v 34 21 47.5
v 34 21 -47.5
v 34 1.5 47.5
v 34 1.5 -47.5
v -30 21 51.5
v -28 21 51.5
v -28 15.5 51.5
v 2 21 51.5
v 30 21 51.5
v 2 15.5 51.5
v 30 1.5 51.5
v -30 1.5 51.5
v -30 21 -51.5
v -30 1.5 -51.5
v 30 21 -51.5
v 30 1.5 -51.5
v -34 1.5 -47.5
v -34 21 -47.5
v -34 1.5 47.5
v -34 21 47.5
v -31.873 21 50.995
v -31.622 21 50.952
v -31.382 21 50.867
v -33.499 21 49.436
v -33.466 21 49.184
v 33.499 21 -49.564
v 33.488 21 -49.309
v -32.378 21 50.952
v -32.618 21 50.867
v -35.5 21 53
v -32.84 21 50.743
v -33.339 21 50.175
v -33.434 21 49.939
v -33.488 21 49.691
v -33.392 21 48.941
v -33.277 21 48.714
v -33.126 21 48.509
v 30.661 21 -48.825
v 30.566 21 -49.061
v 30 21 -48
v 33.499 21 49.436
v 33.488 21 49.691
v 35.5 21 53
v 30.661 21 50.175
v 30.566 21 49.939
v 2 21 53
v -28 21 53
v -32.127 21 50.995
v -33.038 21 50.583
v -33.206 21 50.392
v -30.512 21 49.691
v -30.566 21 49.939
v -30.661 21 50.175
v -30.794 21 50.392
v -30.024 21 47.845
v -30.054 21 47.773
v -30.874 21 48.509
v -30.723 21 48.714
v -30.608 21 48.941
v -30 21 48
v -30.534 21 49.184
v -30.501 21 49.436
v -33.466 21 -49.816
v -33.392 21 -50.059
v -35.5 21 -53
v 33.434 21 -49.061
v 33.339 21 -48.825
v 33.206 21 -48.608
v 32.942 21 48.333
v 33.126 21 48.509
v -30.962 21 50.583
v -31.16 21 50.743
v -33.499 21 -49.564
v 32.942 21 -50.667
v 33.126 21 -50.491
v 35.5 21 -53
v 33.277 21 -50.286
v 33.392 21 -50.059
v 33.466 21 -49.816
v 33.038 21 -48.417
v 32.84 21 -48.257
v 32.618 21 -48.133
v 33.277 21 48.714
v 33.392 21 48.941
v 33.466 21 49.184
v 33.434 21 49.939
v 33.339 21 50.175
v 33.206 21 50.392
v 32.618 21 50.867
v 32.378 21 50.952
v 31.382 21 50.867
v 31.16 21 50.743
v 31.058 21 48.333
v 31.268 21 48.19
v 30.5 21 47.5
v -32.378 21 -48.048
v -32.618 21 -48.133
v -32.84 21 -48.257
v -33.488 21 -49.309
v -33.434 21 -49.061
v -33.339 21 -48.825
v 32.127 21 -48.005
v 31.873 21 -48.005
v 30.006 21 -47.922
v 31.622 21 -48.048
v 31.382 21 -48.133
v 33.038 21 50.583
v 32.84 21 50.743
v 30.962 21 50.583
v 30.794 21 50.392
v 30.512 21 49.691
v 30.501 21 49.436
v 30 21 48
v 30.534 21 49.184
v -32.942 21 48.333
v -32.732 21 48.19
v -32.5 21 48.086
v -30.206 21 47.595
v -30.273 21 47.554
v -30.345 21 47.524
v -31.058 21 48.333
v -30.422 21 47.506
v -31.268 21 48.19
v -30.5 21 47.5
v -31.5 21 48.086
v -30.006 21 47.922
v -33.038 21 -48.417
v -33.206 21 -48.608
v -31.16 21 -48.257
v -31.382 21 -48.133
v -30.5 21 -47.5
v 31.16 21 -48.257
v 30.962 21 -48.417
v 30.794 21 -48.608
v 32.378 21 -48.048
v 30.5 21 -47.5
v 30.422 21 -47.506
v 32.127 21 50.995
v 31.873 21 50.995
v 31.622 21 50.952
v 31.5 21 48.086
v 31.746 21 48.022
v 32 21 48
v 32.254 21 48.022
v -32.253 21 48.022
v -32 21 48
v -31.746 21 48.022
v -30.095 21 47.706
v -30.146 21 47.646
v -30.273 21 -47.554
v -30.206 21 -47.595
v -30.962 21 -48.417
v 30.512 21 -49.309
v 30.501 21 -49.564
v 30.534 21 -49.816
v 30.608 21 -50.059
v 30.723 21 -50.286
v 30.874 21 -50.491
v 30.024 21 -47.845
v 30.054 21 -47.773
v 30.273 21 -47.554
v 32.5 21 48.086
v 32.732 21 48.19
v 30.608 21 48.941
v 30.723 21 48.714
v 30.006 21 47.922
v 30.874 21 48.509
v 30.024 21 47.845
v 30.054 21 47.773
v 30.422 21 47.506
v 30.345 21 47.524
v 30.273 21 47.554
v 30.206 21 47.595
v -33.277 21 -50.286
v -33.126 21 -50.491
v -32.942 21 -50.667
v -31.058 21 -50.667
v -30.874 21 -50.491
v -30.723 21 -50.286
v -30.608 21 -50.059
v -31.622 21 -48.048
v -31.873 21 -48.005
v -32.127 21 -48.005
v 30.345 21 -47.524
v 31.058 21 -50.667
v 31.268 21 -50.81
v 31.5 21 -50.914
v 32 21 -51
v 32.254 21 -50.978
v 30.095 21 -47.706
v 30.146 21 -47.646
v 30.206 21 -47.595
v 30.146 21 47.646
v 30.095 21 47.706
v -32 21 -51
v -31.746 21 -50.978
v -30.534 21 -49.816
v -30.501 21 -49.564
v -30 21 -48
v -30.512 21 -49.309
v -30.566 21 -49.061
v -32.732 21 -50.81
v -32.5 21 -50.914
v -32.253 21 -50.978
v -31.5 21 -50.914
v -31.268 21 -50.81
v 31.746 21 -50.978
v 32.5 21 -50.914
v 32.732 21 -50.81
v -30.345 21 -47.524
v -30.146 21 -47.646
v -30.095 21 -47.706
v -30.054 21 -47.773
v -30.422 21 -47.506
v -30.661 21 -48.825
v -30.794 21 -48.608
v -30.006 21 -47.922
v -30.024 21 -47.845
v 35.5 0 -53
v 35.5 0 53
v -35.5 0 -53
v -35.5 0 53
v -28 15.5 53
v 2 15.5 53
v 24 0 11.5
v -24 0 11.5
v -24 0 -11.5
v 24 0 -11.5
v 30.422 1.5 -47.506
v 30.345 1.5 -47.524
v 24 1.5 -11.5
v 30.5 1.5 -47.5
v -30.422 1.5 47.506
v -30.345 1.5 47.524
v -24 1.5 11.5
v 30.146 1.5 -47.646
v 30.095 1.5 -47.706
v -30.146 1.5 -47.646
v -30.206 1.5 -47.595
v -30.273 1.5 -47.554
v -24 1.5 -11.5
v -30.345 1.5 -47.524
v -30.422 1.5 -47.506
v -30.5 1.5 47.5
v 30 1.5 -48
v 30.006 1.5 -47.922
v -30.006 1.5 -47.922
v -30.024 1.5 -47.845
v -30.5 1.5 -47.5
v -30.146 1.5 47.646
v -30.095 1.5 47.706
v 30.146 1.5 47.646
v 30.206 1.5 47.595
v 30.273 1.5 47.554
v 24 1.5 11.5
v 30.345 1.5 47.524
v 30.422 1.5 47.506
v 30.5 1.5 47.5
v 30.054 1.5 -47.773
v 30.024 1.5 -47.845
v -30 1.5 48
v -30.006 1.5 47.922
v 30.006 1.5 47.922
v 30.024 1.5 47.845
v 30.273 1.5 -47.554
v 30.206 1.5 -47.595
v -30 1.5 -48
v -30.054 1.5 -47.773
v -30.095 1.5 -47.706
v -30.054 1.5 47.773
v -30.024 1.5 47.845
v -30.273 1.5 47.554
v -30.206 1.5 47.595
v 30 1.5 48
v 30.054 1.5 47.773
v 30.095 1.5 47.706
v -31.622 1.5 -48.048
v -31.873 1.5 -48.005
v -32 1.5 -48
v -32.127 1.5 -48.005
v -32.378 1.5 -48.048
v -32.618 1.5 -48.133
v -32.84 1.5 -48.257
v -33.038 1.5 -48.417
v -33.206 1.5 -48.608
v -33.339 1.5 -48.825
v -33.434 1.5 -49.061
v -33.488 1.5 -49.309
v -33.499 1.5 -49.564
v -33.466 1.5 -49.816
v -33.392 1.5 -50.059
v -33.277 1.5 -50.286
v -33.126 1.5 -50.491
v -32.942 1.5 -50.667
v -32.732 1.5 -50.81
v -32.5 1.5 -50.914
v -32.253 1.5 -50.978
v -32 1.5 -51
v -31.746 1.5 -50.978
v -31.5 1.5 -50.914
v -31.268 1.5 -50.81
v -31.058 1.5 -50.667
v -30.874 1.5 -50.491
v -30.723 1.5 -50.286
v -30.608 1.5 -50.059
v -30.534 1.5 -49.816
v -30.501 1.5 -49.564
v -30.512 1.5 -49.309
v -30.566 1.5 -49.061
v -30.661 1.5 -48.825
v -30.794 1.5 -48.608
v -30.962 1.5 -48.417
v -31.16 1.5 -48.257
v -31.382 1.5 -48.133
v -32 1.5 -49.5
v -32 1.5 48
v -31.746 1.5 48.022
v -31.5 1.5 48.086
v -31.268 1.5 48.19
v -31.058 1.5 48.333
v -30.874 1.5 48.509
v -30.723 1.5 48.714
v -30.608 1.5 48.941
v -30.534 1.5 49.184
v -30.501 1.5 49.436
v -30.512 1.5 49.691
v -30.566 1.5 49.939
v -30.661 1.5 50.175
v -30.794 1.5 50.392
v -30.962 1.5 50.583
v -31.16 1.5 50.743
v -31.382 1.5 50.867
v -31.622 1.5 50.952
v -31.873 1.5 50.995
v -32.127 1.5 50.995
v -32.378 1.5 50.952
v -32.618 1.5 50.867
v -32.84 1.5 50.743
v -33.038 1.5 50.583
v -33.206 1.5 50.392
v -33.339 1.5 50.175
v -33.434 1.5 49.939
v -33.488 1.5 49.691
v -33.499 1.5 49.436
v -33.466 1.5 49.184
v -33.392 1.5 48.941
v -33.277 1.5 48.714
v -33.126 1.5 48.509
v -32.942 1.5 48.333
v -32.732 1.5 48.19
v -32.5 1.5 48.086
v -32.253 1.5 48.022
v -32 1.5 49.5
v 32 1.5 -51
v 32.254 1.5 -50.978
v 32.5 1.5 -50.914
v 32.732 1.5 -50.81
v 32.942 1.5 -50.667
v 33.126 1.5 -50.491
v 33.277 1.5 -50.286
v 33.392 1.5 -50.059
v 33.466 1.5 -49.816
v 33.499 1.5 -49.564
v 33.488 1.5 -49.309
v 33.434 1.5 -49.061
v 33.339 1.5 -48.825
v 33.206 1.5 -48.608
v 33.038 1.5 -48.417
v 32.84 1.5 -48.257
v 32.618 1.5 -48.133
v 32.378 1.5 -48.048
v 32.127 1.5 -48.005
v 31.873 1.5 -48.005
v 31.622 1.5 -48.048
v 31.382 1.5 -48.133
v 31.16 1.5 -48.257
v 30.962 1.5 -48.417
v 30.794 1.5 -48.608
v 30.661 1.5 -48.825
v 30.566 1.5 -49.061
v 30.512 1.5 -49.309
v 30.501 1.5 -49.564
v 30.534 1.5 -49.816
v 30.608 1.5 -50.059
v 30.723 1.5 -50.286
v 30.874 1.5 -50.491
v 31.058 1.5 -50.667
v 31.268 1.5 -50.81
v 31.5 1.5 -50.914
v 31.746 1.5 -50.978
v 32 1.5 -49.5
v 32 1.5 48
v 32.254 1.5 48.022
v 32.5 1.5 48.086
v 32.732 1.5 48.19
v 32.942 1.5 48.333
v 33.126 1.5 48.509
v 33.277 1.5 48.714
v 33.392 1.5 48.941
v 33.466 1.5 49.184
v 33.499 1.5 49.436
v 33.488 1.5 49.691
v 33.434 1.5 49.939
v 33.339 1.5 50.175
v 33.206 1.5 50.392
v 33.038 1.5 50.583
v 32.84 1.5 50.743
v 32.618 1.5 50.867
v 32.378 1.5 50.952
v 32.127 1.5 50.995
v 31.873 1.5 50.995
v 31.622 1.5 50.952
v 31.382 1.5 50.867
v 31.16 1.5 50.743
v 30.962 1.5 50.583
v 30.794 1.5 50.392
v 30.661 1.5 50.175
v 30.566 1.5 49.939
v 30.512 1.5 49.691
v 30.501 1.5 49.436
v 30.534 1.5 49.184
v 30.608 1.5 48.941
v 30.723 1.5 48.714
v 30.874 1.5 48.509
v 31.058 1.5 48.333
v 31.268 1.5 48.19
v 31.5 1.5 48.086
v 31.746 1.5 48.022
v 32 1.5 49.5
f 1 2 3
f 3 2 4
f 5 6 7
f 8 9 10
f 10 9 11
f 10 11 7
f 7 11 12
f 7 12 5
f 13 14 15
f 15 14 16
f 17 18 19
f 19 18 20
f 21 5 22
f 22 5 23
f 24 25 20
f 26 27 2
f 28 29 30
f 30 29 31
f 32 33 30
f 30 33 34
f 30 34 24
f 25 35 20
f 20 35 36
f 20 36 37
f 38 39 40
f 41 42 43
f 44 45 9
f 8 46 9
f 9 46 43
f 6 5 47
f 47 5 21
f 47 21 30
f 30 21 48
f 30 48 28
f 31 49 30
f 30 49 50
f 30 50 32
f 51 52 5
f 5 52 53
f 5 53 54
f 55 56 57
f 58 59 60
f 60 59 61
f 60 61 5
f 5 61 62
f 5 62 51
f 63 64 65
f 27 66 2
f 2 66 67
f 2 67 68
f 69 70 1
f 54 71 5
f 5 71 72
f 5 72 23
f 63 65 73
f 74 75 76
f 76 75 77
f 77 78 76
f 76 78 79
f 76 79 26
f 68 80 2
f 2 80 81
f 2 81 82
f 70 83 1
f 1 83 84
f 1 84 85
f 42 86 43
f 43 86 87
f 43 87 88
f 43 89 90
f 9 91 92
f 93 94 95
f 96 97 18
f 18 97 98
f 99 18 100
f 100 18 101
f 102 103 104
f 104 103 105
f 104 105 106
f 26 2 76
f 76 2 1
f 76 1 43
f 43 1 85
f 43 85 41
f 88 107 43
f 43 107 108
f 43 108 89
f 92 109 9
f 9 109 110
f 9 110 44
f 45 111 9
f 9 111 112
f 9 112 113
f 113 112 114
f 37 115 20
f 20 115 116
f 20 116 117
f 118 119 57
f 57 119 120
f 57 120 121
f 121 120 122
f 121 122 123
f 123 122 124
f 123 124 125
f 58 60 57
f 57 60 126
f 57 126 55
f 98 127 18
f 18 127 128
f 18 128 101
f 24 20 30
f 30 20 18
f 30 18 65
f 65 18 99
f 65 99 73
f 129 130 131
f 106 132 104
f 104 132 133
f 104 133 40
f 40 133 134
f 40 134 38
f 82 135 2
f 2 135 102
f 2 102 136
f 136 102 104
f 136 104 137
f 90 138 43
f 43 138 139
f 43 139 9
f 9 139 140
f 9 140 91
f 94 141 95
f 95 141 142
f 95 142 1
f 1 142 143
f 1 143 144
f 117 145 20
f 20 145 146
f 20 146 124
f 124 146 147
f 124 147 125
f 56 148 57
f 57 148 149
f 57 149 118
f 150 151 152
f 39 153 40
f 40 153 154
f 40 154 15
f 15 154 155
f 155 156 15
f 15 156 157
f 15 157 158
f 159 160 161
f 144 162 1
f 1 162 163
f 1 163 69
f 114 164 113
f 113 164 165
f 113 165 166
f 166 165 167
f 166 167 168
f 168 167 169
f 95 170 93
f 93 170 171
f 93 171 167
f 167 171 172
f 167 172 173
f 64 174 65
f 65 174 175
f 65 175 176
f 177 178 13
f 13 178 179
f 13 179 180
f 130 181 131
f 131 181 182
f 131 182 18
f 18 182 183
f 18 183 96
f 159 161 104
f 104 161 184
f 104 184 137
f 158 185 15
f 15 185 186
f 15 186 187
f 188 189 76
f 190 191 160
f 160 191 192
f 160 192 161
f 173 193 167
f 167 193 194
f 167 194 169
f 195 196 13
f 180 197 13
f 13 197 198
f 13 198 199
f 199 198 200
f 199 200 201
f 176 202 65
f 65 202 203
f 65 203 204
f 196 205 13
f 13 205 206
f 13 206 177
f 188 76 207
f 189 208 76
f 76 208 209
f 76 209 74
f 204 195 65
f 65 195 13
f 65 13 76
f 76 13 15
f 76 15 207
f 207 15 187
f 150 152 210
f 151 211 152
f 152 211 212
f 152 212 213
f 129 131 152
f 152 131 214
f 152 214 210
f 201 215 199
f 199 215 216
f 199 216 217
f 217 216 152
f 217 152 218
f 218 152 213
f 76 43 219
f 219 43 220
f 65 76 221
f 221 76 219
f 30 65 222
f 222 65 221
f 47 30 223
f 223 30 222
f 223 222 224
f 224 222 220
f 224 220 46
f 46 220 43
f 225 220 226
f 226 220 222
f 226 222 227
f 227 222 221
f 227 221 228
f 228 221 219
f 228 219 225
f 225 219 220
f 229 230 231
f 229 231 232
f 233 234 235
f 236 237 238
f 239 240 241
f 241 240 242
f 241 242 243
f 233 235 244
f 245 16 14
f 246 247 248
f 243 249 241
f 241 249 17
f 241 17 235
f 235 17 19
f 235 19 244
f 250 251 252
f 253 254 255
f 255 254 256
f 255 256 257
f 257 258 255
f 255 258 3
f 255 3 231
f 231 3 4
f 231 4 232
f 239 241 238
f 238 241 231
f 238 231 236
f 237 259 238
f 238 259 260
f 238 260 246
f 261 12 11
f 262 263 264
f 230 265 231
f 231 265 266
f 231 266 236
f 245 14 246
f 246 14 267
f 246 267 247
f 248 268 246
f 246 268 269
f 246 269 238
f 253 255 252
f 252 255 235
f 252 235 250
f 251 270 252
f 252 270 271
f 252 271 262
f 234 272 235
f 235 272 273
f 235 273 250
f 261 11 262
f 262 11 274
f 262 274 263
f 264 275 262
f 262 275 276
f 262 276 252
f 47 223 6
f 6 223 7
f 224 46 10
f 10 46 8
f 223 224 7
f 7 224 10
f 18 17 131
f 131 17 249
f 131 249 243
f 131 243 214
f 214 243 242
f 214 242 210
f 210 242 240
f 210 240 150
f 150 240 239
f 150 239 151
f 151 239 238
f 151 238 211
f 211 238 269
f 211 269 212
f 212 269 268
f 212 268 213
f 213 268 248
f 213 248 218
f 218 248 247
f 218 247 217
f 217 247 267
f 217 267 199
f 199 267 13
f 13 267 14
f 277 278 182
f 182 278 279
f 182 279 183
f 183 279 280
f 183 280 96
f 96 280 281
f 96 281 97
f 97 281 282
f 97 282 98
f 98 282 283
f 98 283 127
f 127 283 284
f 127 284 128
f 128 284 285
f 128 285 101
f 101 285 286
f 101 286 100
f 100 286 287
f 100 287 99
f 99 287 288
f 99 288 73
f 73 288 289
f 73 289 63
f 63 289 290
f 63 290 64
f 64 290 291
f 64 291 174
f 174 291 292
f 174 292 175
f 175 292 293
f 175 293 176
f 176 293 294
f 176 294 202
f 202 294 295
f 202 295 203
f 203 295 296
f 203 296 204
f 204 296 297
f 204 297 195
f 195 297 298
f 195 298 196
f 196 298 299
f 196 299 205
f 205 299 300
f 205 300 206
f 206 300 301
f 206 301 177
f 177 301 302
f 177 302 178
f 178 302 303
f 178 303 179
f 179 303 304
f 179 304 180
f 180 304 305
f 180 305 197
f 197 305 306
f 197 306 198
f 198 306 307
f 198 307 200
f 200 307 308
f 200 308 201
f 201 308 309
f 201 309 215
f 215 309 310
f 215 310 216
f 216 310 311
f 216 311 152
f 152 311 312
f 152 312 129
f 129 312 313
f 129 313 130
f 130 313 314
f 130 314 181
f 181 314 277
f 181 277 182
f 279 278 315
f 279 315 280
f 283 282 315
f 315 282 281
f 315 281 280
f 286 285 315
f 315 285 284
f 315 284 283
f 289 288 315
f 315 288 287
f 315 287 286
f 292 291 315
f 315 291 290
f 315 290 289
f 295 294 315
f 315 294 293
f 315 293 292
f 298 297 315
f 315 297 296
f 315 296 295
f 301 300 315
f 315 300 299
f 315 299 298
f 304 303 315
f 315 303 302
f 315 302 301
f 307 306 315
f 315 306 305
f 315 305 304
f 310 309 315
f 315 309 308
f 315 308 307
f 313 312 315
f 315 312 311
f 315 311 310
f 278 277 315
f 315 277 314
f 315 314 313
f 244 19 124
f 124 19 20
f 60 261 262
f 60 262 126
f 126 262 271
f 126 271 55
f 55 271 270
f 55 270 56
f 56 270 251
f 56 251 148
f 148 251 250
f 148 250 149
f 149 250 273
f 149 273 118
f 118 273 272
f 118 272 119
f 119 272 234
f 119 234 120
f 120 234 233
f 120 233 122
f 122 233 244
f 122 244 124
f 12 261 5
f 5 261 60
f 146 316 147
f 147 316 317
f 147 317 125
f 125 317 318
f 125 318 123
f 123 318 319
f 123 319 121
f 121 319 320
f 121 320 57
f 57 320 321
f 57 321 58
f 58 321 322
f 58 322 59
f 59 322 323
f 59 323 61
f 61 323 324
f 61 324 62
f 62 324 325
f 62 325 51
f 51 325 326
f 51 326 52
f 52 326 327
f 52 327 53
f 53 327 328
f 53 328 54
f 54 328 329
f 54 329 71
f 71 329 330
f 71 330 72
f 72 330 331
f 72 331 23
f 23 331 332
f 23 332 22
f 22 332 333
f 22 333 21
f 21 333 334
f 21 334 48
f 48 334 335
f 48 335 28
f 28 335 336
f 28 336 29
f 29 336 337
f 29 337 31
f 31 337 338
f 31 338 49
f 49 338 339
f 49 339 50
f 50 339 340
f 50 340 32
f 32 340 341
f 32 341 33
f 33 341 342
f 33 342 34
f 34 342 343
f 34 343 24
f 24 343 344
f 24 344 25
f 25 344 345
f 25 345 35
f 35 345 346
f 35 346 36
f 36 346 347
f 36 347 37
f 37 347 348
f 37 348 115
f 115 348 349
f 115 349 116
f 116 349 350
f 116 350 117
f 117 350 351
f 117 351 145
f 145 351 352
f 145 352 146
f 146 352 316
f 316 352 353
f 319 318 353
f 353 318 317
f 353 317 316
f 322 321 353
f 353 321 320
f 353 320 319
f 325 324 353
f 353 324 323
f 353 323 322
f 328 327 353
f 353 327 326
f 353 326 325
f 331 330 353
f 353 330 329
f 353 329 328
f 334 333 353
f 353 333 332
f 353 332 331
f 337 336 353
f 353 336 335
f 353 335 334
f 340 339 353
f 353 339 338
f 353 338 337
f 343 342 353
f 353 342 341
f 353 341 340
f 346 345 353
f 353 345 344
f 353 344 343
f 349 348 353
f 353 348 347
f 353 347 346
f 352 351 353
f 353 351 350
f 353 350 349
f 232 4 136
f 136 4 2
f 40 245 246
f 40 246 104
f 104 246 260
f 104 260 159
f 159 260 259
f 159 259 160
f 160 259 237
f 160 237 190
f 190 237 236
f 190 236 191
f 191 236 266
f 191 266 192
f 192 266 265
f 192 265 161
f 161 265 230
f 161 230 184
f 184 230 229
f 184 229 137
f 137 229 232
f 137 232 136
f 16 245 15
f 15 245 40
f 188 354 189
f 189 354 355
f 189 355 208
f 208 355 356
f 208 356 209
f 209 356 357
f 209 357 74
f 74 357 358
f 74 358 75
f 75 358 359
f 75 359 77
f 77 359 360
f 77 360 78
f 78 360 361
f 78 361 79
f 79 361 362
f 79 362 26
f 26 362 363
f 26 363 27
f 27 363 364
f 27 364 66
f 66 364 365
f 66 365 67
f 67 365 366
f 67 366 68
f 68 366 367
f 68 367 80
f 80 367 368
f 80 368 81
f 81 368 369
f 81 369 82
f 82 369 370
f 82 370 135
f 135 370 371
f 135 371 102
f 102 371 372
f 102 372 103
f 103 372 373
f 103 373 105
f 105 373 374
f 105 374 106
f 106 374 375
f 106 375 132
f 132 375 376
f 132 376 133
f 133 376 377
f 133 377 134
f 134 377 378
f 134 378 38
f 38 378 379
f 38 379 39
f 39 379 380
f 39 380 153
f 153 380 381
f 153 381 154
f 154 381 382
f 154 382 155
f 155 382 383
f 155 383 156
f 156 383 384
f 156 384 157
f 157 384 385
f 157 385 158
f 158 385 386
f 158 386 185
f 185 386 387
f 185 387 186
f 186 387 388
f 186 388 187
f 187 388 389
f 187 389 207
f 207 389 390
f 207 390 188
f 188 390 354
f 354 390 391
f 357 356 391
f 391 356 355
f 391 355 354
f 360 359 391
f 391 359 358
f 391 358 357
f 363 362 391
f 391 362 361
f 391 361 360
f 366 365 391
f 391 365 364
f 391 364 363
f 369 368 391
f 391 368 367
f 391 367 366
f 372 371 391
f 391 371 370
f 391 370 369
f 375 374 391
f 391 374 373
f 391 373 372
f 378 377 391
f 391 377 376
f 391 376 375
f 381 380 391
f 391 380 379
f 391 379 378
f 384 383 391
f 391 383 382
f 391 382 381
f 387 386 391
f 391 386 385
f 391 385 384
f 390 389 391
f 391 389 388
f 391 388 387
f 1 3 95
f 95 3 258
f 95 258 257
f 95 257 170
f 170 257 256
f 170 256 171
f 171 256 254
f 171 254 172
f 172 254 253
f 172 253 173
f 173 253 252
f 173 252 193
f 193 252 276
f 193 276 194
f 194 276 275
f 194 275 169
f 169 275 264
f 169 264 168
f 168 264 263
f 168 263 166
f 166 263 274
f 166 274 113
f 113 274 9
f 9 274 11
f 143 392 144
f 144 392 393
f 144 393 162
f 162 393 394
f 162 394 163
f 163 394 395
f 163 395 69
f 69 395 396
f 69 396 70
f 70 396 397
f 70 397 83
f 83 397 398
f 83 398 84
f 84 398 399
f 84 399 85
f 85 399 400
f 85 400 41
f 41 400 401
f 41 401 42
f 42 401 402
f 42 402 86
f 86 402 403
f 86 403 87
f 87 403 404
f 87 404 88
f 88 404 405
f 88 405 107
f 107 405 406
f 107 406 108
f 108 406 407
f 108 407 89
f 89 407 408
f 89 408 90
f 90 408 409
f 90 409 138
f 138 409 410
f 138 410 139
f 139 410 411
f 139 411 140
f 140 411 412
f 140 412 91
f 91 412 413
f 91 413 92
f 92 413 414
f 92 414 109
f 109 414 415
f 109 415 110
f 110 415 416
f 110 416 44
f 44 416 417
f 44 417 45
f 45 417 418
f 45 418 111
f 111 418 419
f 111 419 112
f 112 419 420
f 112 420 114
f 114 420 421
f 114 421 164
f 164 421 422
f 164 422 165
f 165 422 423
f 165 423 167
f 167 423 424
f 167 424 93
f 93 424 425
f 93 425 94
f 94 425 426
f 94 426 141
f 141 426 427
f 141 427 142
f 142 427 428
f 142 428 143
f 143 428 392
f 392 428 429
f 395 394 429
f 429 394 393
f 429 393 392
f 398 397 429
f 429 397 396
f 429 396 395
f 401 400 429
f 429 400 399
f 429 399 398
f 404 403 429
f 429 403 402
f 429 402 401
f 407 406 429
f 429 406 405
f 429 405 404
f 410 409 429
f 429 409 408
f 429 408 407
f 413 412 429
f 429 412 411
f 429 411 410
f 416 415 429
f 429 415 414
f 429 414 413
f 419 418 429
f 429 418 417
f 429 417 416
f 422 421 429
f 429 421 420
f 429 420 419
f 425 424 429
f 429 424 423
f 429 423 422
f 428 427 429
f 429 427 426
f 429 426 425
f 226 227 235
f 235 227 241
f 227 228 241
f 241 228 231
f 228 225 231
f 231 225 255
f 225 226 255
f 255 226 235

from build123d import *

# Parameters (mm, degrees)
SKETCH2_W                                  = 71
SKETCH2_H                                  = 106
BOSS_EXTRUDE1_DEPTH                        = 21
SHELL1_T                                   = -1.5
SKETCH3_W                                  = 30
SKETCH3_H                                  = 5.5
CUT_EXTRUDE1_DEPTH                         = 21
SKETCH4_R                                  = 1.5
BOSS_EXTRUDE2_DEPTH                        = 19.5
MIRROR1_AT_THE_SECOND_PLANE_COPY_1_SKETC_R = 1.5
MIRROR1_AT_THE_SECOND_PLANE_COPY_1_DEPTH   = 19.5
SKETCH5_W                                  = 48
SKETCH5_H                                  = 23
CUT_EXTRUDE2_DEPTH                         = 1.5


with BuildPart() as part:
    # Sketch2 → Boss-Extrude1 (new body)
    with BuildSketch(Plane(origin=(0, 0, 0), x_dir=(1, 0, 0), z_dir=(0, 1, 0))):
        Rectangle(SKETCH2_W, SKETCH2_H)
    extrude(amount=BOSS_EXTRUDE1_DEPTH)

    # Shell1
    shell1_openings = [part.faces().sort_by_distance(p)[0] for p in [
        (0, 21, 0),
    ]]
    offset(amount=SHELL1_T, openings=shell1_openings, kind=Kind.INTERSECTION)

    # Sketch3 → Cut-Extrude1 (cut)
    with BuildSketch(Plane.XY.offset(53)):
        with Locations((-13, 18.25)):
            Rectangle(SKETCH3_W, SKETCH3_H)
    extrude(amount=-CUT_EXTRUDE1_DEPTH, mode=Mode.SUBTRACT)

    # Sketch4 → Boss-Extrude2 (add)
    with BuildSketch(Plane(origin=(0, 1.5, 0), x_dir=(1, 0, 0), z_dir=(0, 1, 0))):
        with BuildLine():
            Line((-34, 51.5), (-30, 51.5))
            Line((-30, 51.5), (-30, 48))
            ThreePointArc((-30, 48), (-30.146446609, 47.646446609), (-30.5, 47.5))
            Line((-30.5, 47.5), (-34, 47.5))
            Line((-34, 47.5), (-34, 51.5))
        make_face()
        with Locations((-32, 49.5)):
            Circle(SKETCH4_R, mode=Mode.SUBTRACT)
    boss_extrude2 = extrude(amount=BOSS_EXTRUDE2_DEPTH)

    # Mirror1: Boss-Extrude2 across plane
    add(boss_extrude2.mirror(Plane.ZY))

    # Mirror1 at the second plane: Boss-Extrude2 across plane
    add(boss_extrude2.mirror(Plane(origin=(0, 0, 0), x_dir=(1, 0, 0), z_dir=(0, 0, -1))))

    # Mirror1 at the second plane copy 1 sketc → Mirror1 at the second plane copy 1 (add)
    with BuildSketch(Plane(origin=(0, 1.5, 0), x_dir=(-1, 0, 0), z_dir=(0, 1, 0))):
        with BuildLine():
            Line((-34, 51.5), (-30, 51.5))
            Line((-30, 51.5), (-30, 48))
            ThreePointArc((-30, 48), (-30.146446609, 47.646446609), (-30.5, 47.5))
            Line((-30.5, 47.5), (-34, 47.5))
            Line((-34, 47.5), (-34, 51.5))
        make_face()
        with Locations((-32, 49.5)):
            Circle(MIRROR1_AT_THE_SECOND_PLANE_COPY_1_SKETC_R, mode=Mode.SUBTRACT)
    extrude(amount=MIRROR1_AT_THE_SECOND_PLANE_COPY_1_DEPTH)

    # Sketch5 → Cut-Extrude2 (cut)
    with BuildSketch(Plane(origin=(0, 1.5, 0), x_dir=(1, 0, 0), z_dir=(0, 1, 0))):
        Rectangle(SKETCH5_W, SKETCH5_H)
    extrude(amount=-CUT_EXTRUDE2_DEPTH, mode=Mode.SUBTRACT)


solid = part.part
